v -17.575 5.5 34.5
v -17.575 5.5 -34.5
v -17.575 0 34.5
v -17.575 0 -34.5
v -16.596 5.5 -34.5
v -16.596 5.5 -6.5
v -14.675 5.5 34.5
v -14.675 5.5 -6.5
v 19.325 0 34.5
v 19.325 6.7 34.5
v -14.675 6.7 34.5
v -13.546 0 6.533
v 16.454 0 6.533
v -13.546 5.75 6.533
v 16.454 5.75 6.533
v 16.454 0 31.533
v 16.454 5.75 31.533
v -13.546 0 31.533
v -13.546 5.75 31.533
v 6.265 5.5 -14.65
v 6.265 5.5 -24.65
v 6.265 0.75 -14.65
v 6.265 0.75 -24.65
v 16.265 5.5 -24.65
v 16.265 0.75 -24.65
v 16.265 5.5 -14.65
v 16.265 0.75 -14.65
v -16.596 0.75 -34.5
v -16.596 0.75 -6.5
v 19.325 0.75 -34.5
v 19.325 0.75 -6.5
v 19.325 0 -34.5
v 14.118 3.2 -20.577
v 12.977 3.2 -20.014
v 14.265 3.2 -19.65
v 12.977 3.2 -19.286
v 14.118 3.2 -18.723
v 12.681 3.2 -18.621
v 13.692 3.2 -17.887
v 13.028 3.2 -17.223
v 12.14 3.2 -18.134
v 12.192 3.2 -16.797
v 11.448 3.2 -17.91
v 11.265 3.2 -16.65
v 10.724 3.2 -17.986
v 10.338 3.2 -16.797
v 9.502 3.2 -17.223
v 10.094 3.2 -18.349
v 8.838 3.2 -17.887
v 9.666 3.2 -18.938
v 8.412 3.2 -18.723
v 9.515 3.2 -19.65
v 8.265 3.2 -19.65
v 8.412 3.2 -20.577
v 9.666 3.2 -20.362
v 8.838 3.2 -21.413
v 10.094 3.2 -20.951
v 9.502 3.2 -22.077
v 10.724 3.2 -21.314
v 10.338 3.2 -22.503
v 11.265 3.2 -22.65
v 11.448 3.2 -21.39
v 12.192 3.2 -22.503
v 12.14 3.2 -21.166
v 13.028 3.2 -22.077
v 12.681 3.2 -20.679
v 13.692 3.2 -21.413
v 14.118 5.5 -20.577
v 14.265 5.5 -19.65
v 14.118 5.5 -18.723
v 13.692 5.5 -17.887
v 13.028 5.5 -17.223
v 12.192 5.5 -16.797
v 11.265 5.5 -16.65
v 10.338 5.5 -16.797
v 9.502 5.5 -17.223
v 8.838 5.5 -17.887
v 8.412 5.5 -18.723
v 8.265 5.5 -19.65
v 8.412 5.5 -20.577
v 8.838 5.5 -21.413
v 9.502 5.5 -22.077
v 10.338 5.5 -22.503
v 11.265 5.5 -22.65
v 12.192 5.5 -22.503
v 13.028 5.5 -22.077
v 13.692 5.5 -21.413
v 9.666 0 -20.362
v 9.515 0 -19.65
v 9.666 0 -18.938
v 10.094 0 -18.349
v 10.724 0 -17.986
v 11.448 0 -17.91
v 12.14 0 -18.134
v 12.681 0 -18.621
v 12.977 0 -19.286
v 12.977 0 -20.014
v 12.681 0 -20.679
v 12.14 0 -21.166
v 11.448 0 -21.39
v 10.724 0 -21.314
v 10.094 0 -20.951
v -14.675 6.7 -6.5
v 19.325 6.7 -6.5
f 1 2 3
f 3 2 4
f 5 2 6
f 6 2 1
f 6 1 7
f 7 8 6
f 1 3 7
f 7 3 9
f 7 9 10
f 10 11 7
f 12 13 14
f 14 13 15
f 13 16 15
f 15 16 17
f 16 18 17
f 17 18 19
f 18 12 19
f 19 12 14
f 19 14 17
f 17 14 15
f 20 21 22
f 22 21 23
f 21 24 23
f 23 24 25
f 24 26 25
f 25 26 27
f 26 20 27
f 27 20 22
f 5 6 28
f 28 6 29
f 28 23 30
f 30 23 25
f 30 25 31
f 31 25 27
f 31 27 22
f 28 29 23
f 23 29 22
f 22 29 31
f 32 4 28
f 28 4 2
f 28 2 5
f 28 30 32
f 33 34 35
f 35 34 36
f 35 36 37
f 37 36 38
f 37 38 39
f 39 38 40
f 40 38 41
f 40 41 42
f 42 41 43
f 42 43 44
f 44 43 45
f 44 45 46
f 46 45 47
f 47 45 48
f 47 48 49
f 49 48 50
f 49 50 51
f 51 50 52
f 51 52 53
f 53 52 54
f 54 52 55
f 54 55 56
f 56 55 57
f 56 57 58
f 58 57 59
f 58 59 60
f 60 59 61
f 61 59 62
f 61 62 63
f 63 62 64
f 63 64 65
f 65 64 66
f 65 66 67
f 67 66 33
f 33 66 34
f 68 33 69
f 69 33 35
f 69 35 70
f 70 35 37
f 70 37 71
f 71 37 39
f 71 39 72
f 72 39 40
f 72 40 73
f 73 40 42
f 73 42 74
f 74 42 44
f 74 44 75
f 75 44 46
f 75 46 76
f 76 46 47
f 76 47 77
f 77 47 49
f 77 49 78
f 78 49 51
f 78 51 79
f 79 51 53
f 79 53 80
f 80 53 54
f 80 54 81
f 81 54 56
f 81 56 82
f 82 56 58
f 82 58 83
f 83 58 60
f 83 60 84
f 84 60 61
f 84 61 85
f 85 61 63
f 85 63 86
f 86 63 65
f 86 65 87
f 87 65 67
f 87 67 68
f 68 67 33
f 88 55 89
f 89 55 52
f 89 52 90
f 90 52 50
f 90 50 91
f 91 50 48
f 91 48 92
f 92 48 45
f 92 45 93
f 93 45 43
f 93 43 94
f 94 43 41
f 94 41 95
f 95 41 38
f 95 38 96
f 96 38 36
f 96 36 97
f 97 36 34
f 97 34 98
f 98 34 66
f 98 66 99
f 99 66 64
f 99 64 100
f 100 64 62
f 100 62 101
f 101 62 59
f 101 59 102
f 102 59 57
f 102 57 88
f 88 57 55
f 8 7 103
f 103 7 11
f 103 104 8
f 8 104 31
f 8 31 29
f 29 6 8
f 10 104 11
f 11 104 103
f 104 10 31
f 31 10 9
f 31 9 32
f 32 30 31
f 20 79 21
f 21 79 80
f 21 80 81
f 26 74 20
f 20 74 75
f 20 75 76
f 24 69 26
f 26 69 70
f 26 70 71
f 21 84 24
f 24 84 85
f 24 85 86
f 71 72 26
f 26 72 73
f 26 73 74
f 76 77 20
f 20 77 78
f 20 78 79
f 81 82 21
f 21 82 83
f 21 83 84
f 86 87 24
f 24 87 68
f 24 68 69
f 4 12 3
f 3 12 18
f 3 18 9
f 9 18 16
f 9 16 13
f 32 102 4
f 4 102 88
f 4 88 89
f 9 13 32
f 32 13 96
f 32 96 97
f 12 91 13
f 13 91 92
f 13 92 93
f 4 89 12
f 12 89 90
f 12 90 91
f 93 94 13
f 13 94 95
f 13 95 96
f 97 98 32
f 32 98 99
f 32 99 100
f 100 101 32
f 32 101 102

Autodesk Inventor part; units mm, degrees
ref_plane "YZ Plane" through (0, 0, 0) normal (1, 0, 0) x (0, 1, 0)
ref_plane "XZ Plane" through (0, 0, 0) normal (0, 1, 0) x (-1, 0, 0)
ref_plane "XY Plane" through (0, 0, 0) normal (0, 0, 1) x (1, 0, 0)
sketch "Sketch1" plane through (0, 0, 0) normal (0, 1, 0) x (-1, 0, 0)
  line L0 (19.325, 34.5) -> (-19.325, 34.5)
  line L1 (-19.325, 34.5) -> (-19.325, -34.5)
  line L2 (-19.325, -34.5) -> (19.325, -34.5)
  line L3 (19.325, -34.5) -> (19.325, 34.5)
  line L4 (19.325, 34.5) -> (-19.325, -34.5) construction
  line L5 (-19.325, 34.5) -> (19.325, -34.5) construction
  point P0 (0, 0)
  dimension "d0" = 38.65
  dimension "d1" = 69
extrude "Extrusion1" add sketch "Sketch1" along normal blind 5.5
sketch "Sketch3" plane through (0, 5.5, 0) normal (0, 1, 0) x (1, 0, 0)
  line L0 (19.325, -34.5) -> (19.325, 34.5) projected
  line L1 (19.325, -34.5) -> (-14.675, -34.5)
  line L2 (-14.675, -34.5) -> (-14.675, 6.5)
  line L3 (-14.675, 6.5) -> (19.325, 6.5)
  line L4 (19.325, 6.5) -> (19.325, -34.5)
  point P0 (0, 0)
  dimension "d4" = 34
  dimension "d5" = 41
extrude "Extrusion2" add sketch "Sketch3" along normal blind 1.2
sketch "Sketch4" plane through (-19.325, 0, -34.5) normal (-1, 0, 0) x (0, 0, 1)
  point P0 (34.5, 0)
sketch "Sketch5" plane through (0, 5.5, 0) normal (0, 1, 0) x (1, 0, 0)
  line L0 (19.325, 34.5) -> (-19.325, 34.5) projected
  line L1 (19.325, 34.5) -> (11.265, 34.5)
  circle A0 centre (11.265, 19.65) radius 2.4036
  line L2 (-14.675, -34.5) -> (19.325, -34.5) projected
  point P0 (0, 0)
  dimension "d20" = 8.06
  dimension "d21" = 54.15
hole "Hole1" at (11.265, 5.5, -19.65) direction (0, -1, 0) diameter 3.5 depth 10.5 tip angle 118 counterbore diameter 6 counterbore depth 2.3
sketch "Sketch6" plane through (0, 5.5, 0) normal (0, 1, 0) x (1, 0, 0)
  line L0 (19.325, -34.5) -> (19.325, 34.5) projected
  line L1 (19.325, 34.5) -> (-16.5957, 34.5)
  line L2 (-16.5957, 34.5) -> (-16.5957, 6.5)
  line L3 (-16.5957, 6.5) -> (19.325, 6.5)
  line L4 (19.325, 6.5) -> (19.325, 34.5)
  line L5 (16.265, 24.65) -> (6.265, 24.65)
  line L6 (6.265, 24.65) -> (6.265, 14.65)
  line L7 (6.265, 14.65) -> (16.265, 14.65)
  line L8 (16.265, 14.65) -> (16.265, 24.65)
  circle A0 centre (11.265, 19.65) radius 1.75 projected
  line L9 (16.265, 24.65) -> (6.265, 14.65) construction
  line L10 (6.265, 24.65) -> (16.265, 14.65) construction
  point P0 (0, 0)
  point P1 (19.325, 6.5)
  dimension "d32" = 10
  dimension "d33" = 10
  dimension "d37" = 28
extrude "Extrusion3" cut sketch "Sketch6" against normal blind 4.75 contours L3 L2 L1 L0
sketch "Sketch7" plane through (0, 0, 0) normal (0, -1, 0) x (1, 0, 0)
  line L0 (-13.5462, 6.5334) -> (16.4538, 6.5334)
  line L1 (16.4538, 6.5334) -> (16.4538, 31.5334)
  line L2 (16.4538, 31.5334) -> (-13.5462, 31.5334)
  line L3 (-13.5462, 31.5334) -> (-13.5462, 6.5334)
  line L4 (-13.5462, 6.5334) -> (16.4538, 31.5334) construction
  line L5 (16.4538, 6.5334) -> (-13.5462, 31.5334) construction
  point P0 (0, 0)
  point P1 (1.4538, 19.0334)
  dimension "d40" = 30
  dimension "d41" = 25
extrude "Extrusion4" cut sketch "Sketch7" against normal blind 5.75
sketch "Sketch8" plane through (-19.325, 0, -34.5) normal (-1, 0, 0) x (0, 0, 1)
  line L0 (0, 0) -> (69, 0) projected
  line L1 (69, 0) -> (69, 5.5) projected
  line L2 (0, 0) -> (69, 0)
  line L3 (69, 0) -> (69, 5.5)
  line L4 (69, 5.5) -> (0, 5.5)
  line L5 (0, 5.5) -> (0, 0)
  point P0 (34.5, 0)
extrude "Extrusion5" cut sketch "Sketch8" against normal blind 1.75
properties part number "support_1"
